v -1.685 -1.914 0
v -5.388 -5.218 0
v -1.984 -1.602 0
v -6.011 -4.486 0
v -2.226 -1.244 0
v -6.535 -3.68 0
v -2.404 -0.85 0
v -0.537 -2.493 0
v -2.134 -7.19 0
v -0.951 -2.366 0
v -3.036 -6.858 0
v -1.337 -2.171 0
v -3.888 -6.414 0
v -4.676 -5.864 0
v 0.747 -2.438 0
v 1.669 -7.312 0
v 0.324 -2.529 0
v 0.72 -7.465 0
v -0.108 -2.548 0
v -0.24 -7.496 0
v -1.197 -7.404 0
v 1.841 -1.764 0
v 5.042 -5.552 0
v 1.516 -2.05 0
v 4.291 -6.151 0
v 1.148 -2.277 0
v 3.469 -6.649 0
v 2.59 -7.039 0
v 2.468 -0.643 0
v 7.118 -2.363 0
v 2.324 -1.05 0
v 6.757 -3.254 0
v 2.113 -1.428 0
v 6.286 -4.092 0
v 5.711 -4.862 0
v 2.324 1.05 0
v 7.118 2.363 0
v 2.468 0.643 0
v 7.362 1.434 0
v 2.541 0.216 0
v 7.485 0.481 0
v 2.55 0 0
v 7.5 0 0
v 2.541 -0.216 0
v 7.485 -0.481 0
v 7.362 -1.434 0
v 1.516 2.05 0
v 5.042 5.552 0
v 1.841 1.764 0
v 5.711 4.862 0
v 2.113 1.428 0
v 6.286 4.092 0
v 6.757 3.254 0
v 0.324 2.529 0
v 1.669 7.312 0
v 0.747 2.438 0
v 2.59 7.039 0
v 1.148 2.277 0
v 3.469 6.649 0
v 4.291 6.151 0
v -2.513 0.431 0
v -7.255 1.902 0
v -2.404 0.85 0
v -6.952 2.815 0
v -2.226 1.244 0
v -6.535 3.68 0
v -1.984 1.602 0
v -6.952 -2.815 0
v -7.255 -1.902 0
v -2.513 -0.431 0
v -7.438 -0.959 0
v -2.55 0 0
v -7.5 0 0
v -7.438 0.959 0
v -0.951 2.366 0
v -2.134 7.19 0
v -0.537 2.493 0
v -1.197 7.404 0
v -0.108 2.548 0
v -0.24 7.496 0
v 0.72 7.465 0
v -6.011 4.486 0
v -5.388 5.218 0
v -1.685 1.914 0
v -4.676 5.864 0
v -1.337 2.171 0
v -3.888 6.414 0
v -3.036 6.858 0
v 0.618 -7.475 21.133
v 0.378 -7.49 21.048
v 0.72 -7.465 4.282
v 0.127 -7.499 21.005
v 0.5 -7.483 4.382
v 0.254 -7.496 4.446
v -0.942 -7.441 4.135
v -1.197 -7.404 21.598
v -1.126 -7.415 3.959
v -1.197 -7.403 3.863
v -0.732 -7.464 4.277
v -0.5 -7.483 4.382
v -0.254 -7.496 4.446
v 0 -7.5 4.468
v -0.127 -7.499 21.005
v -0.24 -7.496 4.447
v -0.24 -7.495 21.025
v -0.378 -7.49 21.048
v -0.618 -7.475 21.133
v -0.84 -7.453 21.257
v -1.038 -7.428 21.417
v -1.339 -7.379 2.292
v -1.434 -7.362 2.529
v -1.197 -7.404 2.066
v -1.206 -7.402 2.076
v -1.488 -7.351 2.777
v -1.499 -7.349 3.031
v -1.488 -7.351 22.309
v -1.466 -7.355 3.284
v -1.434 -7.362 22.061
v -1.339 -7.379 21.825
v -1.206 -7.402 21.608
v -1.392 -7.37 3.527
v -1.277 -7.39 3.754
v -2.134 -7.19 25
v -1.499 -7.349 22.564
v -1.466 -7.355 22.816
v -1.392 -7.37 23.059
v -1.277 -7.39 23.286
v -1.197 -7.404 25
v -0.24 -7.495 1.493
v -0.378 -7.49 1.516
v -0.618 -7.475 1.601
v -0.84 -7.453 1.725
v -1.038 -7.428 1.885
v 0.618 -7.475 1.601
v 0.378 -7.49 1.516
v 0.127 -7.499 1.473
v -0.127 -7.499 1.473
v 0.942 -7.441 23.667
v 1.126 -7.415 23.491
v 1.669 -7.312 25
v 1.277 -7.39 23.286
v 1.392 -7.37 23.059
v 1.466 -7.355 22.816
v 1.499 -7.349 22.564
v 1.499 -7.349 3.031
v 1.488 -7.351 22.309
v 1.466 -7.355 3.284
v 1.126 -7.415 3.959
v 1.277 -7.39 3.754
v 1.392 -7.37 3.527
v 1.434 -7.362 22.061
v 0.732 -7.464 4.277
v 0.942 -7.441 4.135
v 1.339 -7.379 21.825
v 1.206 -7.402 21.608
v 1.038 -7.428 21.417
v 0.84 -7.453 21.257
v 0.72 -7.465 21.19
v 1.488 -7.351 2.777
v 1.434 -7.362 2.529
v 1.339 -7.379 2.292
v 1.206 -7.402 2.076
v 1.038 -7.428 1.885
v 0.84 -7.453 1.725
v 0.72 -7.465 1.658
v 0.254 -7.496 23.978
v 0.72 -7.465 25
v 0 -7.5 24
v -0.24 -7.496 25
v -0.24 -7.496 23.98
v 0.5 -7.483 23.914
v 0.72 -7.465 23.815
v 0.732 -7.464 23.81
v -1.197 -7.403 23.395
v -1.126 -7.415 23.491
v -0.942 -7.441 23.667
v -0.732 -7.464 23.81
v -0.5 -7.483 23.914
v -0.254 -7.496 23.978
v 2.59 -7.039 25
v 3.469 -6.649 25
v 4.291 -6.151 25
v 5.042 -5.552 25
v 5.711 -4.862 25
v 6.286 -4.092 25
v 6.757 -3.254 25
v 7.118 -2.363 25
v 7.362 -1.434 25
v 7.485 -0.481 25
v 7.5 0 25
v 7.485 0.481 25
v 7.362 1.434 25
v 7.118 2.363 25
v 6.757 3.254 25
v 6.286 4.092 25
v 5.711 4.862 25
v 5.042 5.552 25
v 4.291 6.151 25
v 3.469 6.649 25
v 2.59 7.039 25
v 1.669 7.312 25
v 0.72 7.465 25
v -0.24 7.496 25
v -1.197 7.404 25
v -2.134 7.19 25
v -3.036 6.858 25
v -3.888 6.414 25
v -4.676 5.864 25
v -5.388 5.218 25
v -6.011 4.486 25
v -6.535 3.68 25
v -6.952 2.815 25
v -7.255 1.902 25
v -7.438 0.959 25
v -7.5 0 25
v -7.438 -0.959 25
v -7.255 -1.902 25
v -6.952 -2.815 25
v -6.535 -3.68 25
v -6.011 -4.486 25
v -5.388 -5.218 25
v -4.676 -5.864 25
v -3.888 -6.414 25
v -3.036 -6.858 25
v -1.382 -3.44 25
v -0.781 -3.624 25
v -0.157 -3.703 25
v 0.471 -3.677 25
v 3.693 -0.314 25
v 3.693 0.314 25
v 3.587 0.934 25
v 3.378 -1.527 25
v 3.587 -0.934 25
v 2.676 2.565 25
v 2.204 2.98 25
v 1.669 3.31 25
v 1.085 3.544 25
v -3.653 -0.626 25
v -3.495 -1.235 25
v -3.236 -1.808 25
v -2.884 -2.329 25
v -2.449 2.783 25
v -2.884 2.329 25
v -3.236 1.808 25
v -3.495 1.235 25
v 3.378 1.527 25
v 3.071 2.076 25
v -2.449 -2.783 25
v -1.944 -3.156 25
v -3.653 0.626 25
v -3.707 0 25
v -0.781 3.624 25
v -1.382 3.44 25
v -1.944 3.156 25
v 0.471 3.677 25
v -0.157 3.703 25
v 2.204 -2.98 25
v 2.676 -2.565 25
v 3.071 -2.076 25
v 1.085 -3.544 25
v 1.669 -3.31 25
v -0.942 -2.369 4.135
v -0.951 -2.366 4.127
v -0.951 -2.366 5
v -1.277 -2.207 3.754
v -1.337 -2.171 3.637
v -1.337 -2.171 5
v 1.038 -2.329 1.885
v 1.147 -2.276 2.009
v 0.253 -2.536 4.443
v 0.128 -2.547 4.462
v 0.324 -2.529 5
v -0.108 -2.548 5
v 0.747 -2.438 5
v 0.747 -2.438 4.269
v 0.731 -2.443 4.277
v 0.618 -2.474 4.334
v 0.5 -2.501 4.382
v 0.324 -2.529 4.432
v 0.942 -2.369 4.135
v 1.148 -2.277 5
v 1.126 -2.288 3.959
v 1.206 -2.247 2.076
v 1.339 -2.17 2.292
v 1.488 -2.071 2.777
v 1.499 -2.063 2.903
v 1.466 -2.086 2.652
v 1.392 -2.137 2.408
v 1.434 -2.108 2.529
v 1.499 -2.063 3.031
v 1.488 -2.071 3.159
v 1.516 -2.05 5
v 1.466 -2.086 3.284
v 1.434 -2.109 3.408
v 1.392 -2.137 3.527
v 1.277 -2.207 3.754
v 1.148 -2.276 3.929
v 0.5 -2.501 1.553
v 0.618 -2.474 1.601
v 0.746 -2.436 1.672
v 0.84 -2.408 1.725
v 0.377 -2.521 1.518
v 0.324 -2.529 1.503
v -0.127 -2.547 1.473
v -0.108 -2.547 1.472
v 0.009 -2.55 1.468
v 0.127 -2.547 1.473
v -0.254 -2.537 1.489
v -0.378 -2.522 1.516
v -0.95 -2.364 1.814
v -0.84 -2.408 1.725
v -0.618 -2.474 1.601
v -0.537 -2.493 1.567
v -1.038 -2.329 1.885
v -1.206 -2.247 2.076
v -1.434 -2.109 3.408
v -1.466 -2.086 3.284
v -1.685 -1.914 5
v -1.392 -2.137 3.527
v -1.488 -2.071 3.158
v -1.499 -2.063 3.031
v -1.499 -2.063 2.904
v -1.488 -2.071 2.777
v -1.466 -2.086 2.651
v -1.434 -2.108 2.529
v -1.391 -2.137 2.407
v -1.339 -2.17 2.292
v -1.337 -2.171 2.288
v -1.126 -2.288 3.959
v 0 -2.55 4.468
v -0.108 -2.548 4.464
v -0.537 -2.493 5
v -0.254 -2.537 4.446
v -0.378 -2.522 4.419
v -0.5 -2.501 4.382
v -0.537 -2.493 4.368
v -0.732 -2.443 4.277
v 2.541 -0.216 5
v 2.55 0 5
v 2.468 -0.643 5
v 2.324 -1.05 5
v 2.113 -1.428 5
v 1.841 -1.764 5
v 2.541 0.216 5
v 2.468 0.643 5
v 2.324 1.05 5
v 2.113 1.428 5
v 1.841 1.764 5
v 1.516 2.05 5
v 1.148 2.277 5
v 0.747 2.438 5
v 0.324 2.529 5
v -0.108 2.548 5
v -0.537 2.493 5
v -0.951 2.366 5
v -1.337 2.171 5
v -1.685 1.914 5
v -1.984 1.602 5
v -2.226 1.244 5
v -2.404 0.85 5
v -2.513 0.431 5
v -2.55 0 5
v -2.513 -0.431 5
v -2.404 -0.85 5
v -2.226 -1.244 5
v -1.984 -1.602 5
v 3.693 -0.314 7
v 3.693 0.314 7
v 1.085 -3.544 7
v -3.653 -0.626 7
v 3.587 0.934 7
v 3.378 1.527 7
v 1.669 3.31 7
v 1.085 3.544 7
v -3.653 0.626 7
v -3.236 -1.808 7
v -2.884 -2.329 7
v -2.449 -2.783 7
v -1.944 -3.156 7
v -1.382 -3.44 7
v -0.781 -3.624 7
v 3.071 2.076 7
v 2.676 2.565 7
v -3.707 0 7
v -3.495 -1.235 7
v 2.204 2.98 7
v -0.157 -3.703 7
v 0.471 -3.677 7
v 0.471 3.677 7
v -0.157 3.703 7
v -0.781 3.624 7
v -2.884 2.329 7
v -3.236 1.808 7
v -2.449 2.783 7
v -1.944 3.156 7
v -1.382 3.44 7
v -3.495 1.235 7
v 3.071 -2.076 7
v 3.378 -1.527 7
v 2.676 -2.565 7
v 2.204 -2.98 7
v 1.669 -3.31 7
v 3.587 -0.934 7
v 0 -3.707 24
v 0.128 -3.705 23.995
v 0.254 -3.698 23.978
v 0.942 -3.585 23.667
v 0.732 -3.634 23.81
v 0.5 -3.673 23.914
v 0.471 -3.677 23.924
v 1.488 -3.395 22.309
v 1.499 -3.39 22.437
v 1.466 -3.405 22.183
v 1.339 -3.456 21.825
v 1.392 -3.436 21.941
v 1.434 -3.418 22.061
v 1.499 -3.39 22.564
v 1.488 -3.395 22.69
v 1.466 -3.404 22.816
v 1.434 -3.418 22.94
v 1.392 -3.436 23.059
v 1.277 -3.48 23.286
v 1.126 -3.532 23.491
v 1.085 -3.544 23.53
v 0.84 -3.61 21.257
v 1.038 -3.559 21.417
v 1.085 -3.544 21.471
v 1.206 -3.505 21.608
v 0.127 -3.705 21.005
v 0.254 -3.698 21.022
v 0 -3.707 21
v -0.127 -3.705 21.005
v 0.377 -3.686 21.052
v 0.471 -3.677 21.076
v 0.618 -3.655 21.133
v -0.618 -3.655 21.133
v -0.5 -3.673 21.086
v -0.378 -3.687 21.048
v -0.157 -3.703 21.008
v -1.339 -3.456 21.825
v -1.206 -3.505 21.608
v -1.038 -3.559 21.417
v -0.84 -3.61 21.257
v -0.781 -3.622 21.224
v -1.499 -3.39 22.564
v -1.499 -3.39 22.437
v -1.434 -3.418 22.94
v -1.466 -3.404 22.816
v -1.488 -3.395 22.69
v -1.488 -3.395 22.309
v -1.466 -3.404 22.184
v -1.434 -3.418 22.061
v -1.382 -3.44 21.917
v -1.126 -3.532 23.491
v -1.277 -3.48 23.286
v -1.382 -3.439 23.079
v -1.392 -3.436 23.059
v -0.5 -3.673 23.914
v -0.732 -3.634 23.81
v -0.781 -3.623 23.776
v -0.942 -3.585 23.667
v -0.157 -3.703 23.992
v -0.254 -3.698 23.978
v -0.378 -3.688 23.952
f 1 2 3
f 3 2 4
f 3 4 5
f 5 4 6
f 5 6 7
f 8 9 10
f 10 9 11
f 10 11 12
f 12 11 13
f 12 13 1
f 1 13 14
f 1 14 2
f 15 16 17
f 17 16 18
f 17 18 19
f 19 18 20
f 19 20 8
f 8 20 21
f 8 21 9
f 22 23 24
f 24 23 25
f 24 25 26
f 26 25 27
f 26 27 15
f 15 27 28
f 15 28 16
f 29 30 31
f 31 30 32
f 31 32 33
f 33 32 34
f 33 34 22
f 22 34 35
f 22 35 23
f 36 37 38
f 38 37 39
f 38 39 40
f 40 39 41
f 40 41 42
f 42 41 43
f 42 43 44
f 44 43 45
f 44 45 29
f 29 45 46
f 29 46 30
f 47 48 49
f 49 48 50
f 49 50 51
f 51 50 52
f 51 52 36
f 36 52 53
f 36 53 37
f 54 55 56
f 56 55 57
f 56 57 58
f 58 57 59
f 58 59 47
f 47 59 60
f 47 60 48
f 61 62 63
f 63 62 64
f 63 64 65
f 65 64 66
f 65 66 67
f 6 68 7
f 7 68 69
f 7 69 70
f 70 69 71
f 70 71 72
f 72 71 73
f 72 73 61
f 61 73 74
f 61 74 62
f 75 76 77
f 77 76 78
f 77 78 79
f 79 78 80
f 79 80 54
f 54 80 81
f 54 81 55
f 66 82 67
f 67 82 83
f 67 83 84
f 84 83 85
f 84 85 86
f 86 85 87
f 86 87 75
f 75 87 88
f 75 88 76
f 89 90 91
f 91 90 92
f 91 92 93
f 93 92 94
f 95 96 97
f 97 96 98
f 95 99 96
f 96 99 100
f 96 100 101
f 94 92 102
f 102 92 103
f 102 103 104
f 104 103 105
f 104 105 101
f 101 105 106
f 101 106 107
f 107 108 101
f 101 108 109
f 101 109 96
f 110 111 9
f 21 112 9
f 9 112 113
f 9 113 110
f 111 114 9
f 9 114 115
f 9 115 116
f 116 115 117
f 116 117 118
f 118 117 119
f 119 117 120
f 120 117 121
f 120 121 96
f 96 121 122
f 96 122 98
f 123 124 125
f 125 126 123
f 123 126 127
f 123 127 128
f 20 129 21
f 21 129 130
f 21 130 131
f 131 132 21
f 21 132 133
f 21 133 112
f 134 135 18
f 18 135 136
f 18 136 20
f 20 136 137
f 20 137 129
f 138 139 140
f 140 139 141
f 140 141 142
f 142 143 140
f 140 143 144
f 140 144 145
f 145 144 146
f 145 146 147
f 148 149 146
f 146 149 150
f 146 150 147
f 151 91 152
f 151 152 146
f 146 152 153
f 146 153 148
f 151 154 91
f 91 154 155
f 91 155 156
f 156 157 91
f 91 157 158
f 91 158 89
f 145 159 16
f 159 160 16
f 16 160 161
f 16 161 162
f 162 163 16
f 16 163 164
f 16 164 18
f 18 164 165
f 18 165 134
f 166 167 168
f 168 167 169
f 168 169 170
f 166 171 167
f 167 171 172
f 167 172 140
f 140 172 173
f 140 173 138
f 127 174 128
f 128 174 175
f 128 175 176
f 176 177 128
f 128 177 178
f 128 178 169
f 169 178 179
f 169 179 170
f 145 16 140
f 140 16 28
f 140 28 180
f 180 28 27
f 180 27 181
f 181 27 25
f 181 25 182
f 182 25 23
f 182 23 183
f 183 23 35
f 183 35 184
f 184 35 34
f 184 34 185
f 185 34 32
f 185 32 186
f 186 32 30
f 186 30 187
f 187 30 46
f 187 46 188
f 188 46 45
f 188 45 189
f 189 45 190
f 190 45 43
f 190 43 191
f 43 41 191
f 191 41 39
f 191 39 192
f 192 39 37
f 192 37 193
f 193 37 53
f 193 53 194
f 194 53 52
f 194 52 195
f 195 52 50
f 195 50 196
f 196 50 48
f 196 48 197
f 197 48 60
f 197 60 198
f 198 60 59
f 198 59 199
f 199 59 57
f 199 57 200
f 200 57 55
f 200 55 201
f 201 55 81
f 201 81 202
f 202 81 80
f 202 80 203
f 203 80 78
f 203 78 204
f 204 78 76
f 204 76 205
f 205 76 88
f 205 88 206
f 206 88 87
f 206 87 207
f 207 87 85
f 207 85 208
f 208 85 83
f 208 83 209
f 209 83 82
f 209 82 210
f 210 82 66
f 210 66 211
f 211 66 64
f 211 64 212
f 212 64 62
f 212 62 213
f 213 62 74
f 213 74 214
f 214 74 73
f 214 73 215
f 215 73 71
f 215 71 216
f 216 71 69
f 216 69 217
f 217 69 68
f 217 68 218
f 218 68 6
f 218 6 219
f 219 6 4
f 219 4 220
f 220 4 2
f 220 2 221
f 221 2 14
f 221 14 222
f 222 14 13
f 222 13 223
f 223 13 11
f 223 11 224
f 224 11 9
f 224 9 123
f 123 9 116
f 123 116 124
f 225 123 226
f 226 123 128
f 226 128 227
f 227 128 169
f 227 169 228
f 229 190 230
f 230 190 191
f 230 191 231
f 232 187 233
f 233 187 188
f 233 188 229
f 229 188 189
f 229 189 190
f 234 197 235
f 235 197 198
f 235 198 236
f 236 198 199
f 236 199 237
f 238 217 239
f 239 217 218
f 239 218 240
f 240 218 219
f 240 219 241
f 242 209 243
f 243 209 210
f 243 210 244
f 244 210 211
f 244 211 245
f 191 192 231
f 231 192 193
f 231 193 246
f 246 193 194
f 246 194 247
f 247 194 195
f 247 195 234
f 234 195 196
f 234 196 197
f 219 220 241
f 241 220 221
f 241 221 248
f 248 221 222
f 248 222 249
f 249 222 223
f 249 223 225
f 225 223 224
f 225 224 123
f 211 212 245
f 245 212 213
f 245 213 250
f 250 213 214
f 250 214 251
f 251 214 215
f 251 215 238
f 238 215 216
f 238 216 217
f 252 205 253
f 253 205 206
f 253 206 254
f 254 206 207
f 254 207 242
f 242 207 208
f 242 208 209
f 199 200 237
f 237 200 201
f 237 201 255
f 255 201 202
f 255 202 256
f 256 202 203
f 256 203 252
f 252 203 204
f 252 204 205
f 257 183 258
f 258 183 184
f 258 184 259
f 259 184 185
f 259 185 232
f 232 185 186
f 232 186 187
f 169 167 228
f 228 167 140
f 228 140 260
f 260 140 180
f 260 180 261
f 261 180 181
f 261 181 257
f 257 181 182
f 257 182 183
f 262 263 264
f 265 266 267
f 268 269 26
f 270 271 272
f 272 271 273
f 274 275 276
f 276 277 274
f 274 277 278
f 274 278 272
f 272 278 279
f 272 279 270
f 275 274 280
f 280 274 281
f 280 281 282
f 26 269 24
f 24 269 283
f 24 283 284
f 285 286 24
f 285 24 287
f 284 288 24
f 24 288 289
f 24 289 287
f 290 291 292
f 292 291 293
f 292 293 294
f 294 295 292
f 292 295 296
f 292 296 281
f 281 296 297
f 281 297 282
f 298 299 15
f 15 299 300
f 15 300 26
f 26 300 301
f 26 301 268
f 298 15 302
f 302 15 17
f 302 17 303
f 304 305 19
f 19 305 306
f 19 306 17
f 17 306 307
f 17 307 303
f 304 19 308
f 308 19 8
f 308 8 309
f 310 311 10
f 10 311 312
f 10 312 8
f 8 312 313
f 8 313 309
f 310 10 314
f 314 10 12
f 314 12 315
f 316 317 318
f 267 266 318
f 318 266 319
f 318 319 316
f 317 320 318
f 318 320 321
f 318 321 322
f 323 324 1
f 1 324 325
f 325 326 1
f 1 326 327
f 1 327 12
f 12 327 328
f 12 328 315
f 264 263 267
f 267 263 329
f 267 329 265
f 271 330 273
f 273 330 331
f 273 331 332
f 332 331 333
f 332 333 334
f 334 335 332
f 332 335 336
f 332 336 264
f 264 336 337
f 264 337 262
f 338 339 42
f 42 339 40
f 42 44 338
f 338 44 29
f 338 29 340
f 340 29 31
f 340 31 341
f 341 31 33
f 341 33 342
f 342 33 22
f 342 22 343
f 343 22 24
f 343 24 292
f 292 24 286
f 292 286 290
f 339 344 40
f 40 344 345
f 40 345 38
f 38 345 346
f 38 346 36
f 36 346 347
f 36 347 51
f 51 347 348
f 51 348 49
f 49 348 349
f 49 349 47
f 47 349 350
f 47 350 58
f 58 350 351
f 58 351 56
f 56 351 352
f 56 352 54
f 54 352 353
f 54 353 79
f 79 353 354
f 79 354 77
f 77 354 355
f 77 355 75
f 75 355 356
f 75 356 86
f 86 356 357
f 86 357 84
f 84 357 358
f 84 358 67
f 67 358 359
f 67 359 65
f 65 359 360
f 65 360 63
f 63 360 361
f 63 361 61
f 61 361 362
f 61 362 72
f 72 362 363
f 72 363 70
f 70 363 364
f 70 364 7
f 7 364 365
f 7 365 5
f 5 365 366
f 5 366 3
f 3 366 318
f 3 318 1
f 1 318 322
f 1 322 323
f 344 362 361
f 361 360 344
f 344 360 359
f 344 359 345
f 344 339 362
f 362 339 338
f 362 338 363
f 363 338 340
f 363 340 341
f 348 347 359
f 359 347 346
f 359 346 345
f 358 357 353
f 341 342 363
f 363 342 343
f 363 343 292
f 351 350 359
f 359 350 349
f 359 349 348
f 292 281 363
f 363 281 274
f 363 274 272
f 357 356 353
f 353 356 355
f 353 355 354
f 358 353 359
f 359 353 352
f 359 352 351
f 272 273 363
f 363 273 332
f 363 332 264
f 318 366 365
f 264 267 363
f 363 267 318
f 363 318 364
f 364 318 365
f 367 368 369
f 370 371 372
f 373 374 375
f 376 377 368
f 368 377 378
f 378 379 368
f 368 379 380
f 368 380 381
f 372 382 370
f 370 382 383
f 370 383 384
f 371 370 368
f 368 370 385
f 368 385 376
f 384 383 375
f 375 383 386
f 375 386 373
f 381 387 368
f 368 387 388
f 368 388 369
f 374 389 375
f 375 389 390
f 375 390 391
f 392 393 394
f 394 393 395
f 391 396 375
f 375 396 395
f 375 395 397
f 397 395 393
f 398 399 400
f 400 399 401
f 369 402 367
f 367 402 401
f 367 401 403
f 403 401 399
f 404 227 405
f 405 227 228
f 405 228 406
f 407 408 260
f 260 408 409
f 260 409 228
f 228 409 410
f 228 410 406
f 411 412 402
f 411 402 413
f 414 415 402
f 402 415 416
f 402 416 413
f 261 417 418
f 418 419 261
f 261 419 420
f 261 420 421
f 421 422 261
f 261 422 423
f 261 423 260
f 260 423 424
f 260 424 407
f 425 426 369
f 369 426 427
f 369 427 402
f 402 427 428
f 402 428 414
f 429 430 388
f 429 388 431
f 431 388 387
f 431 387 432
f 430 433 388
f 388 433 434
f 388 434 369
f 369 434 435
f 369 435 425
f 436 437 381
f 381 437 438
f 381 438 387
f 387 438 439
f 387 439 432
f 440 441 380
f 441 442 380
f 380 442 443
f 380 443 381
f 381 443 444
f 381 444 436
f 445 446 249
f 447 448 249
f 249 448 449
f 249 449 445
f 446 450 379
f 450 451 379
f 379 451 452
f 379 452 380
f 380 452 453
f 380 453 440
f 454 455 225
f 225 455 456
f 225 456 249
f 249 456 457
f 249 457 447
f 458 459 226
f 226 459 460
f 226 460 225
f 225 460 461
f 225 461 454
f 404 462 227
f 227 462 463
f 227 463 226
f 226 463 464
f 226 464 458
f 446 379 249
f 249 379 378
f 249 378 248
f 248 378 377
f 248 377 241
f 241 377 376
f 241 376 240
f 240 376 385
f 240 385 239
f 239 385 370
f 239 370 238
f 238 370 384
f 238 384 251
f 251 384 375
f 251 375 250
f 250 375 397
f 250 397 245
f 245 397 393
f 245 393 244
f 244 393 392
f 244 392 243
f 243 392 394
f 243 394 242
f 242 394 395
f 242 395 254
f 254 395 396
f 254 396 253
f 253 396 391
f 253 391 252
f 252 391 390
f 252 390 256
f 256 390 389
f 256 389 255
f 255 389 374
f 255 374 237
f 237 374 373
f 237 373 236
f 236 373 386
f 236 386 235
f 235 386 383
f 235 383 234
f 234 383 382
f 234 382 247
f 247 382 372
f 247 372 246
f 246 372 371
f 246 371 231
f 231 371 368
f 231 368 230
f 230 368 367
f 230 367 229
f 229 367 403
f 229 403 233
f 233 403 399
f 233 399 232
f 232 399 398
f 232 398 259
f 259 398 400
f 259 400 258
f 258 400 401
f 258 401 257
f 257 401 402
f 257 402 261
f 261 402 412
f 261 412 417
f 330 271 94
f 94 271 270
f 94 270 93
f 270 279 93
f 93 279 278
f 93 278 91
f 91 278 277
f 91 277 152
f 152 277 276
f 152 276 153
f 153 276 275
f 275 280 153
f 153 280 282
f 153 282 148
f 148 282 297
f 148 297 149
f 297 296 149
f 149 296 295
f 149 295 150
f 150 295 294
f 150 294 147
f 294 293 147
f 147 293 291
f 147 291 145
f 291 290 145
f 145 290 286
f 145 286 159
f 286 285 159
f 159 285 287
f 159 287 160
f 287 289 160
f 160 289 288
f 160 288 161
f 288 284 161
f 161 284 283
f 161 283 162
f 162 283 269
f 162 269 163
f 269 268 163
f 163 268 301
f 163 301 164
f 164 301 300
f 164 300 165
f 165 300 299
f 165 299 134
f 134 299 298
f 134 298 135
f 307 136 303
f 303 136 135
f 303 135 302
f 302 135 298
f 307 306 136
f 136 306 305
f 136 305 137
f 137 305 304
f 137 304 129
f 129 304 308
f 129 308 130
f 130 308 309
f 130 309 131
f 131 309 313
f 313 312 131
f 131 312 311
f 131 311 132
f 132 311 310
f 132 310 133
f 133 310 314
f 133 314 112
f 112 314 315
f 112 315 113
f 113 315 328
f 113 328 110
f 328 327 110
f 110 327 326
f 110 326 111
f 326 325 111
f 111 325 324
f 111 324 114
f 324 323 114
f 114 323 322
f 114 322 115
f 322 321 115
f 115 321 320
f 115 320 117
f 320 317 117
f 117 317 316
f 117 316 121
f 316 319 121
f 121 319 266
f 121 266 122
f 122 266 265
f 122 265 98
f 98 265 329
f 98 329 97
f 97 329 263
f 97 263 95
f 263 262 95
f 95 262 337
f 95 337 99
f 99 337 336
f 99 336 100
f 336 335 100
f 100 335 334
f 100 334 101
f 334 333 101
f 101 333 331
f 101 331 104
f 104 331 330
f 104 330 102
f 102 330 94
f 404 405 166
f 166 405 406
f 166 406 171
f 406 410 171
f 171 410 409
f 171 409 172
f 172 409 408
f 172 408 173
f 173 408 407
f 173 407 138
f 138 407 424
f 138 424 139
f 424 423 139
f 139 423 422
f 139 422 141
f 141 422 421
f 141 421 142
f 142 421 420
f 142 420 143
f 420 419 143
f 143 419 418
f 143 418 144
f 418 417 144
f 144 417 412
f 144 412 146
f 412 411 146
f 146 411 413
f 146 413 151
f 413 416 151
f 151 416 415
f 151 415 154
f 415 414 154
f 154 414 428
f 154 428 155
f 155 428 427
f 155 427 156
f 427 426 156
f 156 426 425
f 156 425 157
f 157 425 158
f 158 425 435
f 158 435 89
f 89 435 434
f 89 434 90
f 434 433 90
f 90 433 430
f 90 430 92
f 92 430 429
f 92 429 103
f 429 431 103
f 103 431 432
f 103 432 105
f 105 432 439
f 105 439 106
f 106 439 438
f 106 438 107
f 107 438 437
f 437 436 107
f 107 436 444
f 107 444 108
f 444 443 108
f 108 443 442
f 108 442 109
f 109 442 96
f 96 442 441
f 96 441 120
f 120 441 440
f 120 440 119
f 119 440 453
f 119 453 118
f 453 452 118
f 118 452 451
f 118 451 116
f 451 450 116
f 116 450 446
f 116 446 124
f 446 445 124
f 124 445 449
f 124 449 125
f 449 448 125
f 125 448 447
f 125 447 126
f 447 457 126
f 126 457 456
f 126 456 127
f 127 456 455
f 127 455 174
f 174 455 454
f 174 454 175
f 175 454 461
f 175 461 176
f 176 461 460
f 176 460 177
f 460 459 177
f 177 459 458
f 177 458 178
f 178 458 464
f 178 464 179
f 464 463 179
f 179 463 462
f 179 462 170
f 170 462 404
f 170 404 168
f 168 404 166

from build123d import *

# Parameters (mm, degrees)
ESBO_O1_R                 = 7.5
RESSALTO_EXTRUS_O1_DEPTH  = 25
ESBO_O2_R                 = 2.55
CORTE_EXTRUS_O1_DEPTH     = 5
CORTE_EXTRUS_O2_START     = 7
CORTE_EXTRUS_O2_OUTLINE_R = 3.706811579
CORTE_EXTRUS_O2_DEPTH     = 18
ESBO_O3_R                 = 1.5
CORTE_EXTRUS_O3_DEPTH     = 18


# Read off the part's stored shape, not the designer's step: Corte-extrusão2
with BuildPart() as part:
    # Esboço1 → Ressalto-extrusão1 (new body)
    with BuildSketch(Plane.XY):
        Circle(ESBO_O1_R)
    extrude(amount=RESSALTO_EXTRUS_O1_DEPTH)

    # Esboço2 → Corte-extrusão1 (cut)
    with BuildSketch(Plane.XY):
        Circle(ESBO_O2_R)
    extrude(amount=CORTE_EXTRUS_O1_DEPTH, mode=Mode.SUBTRACT)

    # Corte-extrusão2 outline → Corte-extrusão2 (cut)
    with BuildSketch(Plane.XY.offset(CORTE_EXTRUS_O2_START)):
        Circle(CORTE_EXTRUS_O2_OUTLINE_R)
    extrude(amount=CORTE_EXTRUS_O2_DEPTH, mode=Mode.SUBTRACT)

    # Esboço3 → Corte-extrusão3 (cut)
    with BuildSketch(Plane(origin=(0, 0, 0), x_dir=(1, 0, 0), z_dir=(0, 1, 0))):
        with Locations(Location((0, -2.967761403, 0), (0, 0, 270))):
            Circle(ESBO_O3_R)
        with Locations(Location((0, -22.5, 0), (0, 0, 270))):
            Circle(ESBO_O3_R)
    extrude(amount=-CORTE_EXTRUS_O3_DEPTH, mode=Mode.SUBTRACT)


solid = part.part
